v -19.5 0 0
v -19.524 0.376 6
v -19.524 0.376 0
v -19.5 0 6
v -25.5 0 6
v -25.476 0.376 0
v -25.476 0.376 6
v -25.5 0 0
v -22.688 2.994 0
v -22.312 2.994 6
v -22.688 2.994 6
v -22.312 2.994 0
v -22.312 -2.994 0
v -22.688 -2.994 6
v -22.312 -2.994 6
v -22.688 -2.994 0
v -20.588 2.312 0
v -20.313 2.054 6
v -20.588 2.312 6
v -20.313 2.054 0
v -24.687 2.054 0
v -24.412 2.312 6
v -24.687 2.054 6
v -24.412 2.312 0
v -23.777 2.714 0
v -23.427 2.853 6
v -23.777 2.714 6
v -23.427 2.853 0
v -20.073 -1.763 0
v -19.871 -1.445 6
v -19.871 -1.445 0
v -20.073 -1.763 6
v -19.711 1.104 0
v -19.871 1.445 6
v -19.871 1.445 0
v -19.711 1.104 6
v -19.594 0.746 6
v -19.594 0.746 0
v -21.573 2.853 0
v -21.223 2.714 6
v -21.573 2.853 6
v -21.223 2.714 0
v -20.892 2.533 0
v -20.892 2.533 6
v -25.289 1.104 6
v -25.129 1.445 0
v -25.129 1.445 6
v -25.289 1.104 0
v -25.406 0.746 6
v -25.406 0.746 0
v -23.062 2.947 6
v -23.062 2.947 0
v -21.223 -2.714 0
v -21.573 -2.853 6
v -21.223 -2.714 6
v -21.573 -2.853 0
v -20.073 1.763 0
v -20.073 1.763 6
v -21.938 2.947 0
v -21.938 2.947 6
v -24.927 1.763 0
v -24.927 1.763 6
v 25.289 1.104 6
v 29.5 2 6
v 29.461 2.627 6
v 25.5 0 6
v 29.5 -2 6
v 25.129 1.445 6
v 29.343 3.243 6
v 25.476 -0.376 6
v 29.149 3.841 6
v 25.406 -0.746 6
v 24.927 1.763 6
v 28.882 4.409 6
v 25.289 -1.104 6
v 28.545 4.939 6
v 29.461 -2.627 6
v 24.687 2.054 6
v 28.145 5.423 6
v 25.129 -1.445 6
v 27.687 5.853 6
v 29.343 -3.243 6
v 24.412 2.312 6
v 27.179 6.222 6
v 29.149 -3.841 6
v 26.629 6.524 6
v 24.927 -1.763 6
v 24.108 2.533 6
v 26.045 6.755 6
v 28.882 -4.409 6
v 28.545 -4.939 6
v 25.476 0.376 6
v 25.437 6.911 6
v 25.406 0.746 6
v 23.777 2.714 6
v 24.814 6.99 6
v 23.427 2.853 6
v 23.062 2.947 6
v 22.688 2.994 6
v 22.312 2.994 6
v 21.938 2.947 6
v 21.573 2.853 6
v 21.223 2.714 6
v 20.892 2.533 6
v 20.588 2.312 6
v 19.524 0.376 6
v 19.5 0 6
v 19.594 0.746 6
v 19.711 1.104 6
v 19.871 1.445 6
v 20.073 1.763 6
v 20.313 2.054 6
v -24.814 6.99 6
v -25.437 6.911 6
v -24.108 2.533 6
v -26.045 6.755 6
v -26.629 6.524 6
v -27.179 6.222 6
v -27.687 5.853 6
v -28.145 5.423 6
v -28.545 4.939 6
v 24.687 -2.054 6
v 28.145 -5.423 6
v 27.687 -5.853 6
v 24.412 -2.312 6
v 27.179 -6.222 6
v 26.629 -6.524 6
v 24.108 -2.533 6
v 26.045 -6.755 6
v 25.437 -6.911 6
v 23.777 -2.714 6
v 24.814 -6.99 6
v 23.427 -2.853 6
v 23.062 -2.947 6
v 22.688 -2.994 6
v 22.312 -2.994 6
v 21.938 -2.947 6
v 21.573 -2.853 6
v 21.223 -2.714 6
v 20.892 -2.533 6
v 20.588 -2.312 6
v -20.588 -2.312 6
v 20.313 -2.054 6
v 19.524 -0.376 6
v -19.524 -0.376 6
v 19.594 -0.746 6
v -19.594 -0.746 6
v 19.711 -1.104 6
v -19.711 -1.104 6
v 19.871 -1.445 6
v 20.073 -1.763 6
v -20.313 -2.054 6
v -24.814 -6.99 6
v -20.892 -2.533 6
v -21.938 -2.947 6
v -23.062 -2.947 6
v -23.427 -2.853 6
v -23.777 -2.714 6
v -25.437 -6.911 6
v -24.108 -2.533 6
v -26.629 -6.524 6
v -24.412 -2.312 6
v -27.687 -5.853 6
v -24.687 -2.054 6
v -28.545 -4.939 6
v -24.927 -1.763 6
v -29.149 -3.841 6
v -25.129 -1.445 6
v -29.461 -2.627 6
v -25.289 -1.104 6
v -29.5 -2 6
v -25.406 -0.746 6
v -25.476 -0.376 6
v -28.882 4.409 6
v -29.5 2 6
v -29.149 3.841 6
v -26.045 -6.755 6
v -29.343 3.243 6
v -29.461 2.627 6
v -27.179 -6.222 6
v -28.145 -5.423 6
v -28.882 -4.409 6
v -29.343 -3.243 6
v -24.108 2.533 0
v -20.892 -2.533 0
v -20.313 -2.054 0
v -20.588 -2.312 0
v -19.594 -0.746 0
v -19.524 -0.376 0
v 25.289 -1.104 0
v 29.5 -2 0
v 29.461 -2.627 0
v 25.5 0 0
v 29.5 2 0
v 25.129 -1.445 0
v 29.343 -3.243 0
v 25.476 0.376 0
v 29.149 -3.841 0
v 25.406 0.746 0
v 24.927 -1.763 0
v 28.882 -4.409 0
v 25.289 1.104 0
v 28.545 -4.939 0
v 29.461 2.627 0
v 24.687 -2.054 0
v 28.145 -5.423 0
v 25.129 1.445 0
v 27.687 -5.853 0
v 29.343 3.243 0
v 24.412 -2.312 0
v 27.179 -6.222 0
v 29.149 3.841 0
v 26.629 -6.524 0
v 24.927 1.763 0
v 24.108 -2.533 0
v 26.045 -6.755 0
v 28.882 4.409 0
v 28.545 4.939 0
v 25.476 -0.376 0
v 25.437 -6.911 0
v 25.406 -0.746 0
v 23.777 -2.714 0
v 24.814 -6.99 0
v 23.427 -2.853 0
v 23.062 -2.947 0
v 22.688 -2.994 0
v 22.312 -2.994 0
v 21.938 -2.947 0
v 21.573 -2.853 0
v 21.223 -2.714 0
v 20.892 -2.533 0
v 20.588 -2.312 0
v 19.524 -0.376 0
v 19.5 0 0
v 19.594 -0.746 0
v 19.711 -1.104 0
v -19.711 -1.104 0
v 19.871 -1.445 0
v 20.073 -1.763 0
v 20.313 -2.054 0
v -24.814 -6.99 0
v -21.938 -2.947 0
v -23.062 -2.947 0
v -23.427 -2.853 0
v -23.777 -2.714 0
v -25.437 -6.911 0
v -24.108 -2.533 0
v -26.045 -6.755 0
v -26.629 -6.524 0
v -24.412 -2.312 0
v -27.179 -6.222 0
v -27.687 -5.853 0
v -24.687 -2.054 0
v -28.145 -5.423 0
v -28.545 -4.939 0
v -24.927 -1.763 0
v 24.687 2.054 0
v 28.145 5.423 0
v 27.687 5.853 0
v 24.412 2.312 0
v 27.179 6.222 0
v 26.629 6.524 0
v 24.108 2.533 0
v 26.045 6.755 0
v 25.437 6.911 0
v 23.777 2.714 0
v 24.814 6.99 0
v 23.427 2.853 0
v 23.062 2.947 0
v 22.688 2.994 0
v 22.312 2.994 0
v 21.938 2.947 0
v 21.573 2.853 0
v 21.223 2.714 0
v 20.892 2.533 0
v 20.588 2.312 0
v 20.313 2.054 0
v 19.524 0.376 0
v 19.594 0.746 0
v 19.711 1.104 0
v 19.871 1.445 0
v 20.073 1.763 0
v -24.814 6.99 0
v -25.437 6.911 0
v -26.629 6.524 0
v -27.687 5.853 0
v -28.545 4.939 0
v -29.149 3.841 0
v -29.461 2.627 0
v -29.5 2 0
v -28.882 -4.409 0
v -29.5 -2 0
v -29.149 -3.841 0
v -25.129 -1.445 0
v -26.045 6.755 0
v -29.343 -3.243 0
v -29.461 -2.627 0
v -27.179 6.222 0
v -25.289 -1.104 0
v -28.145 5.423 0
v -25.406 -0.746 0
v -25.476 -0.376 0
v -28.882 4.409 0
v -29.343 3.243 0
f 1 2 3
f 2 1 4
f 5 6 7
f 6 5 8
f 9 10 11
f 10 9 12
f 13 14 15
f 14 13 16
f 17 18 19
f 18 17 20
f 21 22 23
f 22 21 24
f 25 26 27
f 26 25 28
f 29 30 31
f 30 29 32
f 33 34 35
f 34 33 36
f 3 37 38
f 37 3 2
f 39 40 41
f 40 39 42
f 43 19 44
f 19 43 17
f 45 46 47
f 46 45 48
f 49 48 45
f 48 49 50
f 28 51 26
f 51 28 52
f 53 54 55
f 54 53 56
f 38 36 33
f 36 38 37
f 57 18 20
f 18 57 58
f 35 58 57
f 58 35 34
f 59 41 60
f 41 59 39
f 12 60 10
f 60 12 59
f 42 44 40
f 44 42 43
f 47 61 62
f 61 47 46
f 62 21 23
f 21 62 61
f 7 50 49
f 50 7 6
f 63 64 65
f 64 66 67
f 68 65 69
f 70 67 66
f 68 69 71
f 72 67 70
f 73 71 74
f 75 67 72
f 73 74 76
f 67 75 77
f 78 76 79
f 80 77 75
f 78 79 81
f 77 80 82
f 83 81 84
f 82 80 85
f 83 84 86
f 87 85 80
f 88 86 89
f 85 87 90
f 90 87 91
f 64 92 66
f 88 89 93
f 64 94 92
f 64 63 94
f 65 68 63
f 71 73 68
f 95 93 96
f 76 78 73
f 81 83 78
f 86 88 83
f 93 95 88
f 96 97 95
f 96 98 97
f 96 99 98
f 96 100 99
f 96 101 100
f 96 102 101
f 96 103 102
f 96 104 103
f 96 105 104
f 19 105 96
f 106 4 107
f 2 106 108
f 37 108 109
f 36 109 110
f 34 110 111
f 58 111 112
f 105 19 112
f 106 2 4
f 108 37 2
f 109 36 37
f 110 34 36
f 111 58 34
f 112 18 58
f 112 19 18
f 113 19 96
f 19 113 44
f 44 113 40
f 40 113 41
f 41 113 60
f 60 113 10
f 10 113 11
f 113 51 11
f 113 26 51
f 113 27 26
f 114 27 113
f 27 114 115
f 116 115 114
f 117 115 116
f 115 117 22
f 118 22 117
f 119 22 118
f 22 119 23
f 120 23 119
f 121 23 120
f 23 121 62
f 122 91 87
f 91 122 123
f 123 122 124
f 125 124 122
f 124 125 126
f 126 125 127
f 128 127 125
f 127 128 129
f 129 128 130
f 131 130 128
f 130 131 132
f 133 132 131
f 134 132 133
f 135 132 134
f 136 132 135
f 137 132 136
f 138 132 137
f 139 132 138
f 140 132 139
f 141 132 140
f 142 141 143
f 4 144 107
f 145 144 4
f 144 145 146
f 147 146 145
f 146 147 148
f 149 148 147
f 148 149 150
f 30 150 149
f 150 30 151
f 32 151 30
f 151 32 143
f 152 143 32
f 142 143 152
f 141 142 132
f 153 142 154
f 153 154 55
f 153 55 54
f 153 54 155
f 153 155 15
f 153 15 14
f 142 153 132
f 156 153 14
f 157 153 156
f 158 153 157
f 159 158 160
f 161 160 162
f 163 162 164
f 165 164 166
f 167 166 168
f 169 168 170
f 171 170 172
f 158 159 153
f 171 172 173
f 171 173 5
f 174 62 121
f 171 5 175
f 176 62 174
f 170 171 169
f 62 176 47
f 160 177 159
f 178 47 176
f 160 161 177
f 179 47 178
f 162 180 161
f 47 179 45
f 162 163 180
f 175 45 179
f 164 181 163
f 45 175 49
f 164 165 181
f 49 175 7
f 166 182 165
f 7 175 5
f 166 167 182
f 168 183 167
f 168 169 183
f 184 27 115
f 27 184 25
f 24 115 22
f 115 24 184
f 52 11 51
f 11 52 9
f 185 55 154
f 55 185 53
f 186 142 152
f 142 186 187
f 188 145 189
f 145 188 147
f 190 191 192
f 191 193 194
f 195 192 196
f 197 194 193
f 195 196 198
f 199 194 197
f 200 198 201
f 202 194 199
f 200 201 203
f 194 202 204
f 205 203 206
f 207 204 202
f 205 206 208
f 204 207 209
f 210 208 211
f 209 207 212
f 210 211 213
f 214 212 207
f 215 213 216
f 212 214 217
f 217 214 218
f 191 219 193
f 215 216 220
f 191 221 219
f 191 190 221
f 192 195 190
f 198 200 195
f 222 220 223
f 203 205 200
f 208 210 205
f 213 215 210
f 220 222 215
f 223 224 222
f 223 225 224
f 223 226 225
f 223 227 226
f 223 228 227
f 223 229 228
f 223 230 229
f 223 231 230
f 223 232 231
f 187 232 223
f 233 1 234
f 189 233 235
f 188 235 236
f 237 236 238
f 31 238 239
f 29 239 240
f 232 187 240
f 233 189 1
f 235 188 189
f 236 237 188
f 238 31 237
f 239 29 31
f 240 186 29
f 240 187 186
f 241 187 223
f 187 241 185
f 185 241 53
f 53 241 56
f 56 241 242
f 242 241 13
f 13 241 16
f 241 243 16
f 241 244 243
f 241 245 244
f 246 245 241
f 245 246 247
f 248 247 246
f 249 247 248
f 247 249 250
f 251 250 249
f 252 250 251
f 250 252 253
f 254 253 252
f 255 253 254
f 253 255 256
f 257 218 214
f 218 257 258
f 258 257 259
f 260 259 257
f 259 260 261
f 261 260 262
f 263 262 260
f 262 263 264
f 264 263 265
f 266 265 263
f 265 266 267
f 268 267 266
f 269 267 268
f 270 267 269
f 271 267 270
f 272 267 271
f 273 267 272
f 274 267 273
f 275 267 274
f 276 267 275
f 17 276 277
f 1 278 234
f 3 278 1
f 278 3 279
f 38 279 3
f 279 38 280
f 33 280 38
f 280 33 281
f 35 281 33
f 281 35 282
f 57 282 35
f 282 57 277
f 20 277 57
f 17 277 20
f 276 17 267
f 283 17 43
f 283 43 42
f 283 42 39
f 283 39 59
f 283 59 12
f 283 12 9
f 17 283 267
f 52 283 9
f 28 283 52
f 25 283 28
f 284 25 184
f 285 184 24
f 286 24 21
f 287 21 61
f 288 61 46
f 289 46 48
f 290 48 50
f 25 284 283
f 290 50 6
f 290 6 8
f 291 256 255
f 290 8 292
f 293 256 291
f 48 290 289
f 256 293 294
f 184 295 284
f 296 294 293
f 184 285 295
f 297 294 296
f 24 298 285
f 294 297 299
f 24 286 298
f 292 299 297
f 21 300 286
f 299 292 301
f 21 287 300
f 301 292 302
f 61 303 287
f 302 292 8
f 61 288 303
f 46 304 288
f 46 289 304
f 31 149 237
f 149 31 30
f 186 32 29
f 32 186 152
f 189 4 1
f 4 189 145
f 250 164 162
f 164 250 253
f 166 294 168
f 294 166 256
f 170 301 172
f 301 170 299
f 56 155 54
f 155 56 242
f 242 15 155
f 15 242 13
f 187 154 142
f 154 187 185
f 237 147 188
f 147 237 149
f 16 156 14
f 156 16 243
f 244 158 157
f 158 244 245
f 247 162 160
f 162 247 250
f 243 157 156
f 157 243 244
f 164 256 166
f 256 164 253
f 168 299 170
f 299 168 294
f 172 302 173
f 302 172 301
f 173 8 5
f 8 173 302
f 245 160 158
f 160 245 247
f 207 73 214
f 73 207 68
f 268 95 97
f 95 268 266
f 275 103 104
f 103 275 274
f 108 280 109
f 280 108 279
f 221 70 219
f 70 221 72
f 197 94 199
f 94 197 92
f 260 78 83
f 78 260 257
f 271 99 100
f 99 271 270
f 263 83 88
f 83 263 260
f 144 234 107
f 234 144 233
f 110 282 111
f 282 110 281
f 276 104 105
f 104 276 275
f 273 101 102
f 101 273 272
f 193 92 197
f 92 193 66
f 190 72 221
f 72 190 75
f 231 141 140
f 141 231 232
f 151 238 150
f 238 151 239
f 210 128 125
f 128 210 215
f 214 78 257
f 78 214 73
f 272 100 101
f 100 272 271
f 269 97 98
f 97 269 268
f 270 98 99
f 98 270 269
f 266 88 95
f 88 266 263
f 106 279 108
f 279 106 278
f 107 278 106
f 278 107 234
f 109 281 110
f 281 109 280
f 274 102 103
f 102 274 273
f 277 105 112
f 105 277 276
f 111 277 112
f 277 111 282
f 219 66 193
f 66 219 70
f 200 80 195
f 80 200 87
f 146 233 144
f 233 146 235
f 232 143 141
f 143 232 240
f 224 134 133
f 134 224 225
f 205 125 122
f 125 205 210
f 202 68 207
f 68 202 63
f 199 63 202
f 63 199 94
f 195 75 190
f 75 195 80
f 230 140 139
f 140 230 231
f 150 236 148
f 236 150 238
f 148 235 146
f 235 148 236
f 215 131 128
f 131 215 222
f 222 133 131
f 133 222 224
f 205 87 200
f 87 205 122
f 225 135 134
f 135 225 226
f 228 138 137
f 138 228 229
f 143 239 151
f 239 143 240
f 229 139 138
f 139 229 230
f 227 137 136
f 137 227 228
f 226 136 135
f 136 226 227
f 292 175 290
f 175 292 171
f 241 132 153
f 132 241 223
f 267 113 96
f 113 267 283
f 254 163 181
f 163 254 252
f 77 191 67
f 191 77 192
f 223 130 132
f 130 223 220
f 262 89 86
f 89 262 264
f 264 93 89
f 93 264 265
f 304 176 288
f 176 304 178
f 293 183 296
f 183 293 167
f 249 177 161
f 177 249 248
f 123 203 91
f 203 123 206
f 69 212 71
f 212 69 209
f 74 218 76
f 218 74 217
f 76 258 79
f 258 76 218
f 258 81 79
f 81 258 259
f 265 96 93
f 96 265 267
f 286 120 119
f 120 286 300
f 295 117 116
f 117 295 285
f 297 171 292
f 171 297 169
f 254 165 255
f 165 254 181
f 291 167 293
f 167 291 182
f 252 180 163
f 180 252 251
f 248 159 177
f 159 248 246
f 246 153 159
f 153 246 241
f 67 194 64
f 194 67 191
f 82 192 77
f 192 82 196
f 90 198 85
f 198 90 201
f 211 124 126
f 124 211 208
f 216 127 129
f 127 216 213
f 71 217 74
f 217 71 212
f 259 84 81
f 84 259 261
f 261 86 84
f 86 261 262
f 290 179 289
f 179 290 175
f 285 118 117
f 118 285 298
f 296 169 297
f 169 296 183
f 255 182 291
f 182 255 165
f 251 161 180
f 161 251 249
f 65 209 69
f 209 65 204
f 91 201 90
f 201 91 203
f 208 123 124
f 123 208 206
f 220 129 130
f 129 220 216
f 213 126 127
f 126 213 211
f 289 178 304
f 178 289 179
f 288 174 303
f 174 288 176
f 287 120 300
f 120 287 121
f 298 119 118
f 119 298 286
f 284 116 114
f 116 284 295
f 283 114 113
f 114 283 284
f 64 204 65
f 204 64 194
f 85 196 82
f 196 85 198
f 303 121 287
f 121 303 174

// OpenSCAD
$fn = 50;


difference() {
	union() {
		hull() {
			translate(v = [-24.5000000000, 2.0000000000, 0]) {
				cylinder(h = 6, r = 5);
			}
			translate(v = [24.5000000000, 2.0000000000, 0]) {
				cylinder(h = 6, r = 5);
			}
			translate(v = [-24.5000000000, -2.0000000000, 0]) {
				cylinder(h = 6, r = 5);
			}
			translate(v = [24.5000000000, -2.0000000000, 0]) {
				cylinder(h = 6, r = 5);
			}
		}
	}
	union() {
		translate(v = [-22.5000000000, 0.0000000000, 0]) {
			cylinder(h = 6, r = 3.0000000000);
		}
		translate(v = [22.5000000000, 0.0000000000, 0]) {
			cylinder(h = 6, r = 3.0000000000);
		}
		translate(v = [-22.5000000000, 0.0000000000, 0]) {
			cylinder(h = 6, r = 1.5000000000);
		}
		translate(v = [22.5000000000, 0.0000000000, 0]) {
			cylinder(h = 6, r = 1.5000000000);
		}
		translate(v = [-22.5000000000, 0.0000000000, 0]) {
			cylinder(h = 6, r = 1.5000000000);
		}
		translate(v = [22.5000000000, 0.0000000000, 0]) {
			cylinder(h = 6, r = 1.5000000000);
		}
		translate(v = [-22.5000000000, 0.0000000000, 0]) {
			cylinder(h = 6, r = 1.5000000000);
		}
		translate(v = [22.5000000000, 0.0000000000, 0]) {
			cylinder(h = 6, r = 1.5000000000);
		}
	}
}
